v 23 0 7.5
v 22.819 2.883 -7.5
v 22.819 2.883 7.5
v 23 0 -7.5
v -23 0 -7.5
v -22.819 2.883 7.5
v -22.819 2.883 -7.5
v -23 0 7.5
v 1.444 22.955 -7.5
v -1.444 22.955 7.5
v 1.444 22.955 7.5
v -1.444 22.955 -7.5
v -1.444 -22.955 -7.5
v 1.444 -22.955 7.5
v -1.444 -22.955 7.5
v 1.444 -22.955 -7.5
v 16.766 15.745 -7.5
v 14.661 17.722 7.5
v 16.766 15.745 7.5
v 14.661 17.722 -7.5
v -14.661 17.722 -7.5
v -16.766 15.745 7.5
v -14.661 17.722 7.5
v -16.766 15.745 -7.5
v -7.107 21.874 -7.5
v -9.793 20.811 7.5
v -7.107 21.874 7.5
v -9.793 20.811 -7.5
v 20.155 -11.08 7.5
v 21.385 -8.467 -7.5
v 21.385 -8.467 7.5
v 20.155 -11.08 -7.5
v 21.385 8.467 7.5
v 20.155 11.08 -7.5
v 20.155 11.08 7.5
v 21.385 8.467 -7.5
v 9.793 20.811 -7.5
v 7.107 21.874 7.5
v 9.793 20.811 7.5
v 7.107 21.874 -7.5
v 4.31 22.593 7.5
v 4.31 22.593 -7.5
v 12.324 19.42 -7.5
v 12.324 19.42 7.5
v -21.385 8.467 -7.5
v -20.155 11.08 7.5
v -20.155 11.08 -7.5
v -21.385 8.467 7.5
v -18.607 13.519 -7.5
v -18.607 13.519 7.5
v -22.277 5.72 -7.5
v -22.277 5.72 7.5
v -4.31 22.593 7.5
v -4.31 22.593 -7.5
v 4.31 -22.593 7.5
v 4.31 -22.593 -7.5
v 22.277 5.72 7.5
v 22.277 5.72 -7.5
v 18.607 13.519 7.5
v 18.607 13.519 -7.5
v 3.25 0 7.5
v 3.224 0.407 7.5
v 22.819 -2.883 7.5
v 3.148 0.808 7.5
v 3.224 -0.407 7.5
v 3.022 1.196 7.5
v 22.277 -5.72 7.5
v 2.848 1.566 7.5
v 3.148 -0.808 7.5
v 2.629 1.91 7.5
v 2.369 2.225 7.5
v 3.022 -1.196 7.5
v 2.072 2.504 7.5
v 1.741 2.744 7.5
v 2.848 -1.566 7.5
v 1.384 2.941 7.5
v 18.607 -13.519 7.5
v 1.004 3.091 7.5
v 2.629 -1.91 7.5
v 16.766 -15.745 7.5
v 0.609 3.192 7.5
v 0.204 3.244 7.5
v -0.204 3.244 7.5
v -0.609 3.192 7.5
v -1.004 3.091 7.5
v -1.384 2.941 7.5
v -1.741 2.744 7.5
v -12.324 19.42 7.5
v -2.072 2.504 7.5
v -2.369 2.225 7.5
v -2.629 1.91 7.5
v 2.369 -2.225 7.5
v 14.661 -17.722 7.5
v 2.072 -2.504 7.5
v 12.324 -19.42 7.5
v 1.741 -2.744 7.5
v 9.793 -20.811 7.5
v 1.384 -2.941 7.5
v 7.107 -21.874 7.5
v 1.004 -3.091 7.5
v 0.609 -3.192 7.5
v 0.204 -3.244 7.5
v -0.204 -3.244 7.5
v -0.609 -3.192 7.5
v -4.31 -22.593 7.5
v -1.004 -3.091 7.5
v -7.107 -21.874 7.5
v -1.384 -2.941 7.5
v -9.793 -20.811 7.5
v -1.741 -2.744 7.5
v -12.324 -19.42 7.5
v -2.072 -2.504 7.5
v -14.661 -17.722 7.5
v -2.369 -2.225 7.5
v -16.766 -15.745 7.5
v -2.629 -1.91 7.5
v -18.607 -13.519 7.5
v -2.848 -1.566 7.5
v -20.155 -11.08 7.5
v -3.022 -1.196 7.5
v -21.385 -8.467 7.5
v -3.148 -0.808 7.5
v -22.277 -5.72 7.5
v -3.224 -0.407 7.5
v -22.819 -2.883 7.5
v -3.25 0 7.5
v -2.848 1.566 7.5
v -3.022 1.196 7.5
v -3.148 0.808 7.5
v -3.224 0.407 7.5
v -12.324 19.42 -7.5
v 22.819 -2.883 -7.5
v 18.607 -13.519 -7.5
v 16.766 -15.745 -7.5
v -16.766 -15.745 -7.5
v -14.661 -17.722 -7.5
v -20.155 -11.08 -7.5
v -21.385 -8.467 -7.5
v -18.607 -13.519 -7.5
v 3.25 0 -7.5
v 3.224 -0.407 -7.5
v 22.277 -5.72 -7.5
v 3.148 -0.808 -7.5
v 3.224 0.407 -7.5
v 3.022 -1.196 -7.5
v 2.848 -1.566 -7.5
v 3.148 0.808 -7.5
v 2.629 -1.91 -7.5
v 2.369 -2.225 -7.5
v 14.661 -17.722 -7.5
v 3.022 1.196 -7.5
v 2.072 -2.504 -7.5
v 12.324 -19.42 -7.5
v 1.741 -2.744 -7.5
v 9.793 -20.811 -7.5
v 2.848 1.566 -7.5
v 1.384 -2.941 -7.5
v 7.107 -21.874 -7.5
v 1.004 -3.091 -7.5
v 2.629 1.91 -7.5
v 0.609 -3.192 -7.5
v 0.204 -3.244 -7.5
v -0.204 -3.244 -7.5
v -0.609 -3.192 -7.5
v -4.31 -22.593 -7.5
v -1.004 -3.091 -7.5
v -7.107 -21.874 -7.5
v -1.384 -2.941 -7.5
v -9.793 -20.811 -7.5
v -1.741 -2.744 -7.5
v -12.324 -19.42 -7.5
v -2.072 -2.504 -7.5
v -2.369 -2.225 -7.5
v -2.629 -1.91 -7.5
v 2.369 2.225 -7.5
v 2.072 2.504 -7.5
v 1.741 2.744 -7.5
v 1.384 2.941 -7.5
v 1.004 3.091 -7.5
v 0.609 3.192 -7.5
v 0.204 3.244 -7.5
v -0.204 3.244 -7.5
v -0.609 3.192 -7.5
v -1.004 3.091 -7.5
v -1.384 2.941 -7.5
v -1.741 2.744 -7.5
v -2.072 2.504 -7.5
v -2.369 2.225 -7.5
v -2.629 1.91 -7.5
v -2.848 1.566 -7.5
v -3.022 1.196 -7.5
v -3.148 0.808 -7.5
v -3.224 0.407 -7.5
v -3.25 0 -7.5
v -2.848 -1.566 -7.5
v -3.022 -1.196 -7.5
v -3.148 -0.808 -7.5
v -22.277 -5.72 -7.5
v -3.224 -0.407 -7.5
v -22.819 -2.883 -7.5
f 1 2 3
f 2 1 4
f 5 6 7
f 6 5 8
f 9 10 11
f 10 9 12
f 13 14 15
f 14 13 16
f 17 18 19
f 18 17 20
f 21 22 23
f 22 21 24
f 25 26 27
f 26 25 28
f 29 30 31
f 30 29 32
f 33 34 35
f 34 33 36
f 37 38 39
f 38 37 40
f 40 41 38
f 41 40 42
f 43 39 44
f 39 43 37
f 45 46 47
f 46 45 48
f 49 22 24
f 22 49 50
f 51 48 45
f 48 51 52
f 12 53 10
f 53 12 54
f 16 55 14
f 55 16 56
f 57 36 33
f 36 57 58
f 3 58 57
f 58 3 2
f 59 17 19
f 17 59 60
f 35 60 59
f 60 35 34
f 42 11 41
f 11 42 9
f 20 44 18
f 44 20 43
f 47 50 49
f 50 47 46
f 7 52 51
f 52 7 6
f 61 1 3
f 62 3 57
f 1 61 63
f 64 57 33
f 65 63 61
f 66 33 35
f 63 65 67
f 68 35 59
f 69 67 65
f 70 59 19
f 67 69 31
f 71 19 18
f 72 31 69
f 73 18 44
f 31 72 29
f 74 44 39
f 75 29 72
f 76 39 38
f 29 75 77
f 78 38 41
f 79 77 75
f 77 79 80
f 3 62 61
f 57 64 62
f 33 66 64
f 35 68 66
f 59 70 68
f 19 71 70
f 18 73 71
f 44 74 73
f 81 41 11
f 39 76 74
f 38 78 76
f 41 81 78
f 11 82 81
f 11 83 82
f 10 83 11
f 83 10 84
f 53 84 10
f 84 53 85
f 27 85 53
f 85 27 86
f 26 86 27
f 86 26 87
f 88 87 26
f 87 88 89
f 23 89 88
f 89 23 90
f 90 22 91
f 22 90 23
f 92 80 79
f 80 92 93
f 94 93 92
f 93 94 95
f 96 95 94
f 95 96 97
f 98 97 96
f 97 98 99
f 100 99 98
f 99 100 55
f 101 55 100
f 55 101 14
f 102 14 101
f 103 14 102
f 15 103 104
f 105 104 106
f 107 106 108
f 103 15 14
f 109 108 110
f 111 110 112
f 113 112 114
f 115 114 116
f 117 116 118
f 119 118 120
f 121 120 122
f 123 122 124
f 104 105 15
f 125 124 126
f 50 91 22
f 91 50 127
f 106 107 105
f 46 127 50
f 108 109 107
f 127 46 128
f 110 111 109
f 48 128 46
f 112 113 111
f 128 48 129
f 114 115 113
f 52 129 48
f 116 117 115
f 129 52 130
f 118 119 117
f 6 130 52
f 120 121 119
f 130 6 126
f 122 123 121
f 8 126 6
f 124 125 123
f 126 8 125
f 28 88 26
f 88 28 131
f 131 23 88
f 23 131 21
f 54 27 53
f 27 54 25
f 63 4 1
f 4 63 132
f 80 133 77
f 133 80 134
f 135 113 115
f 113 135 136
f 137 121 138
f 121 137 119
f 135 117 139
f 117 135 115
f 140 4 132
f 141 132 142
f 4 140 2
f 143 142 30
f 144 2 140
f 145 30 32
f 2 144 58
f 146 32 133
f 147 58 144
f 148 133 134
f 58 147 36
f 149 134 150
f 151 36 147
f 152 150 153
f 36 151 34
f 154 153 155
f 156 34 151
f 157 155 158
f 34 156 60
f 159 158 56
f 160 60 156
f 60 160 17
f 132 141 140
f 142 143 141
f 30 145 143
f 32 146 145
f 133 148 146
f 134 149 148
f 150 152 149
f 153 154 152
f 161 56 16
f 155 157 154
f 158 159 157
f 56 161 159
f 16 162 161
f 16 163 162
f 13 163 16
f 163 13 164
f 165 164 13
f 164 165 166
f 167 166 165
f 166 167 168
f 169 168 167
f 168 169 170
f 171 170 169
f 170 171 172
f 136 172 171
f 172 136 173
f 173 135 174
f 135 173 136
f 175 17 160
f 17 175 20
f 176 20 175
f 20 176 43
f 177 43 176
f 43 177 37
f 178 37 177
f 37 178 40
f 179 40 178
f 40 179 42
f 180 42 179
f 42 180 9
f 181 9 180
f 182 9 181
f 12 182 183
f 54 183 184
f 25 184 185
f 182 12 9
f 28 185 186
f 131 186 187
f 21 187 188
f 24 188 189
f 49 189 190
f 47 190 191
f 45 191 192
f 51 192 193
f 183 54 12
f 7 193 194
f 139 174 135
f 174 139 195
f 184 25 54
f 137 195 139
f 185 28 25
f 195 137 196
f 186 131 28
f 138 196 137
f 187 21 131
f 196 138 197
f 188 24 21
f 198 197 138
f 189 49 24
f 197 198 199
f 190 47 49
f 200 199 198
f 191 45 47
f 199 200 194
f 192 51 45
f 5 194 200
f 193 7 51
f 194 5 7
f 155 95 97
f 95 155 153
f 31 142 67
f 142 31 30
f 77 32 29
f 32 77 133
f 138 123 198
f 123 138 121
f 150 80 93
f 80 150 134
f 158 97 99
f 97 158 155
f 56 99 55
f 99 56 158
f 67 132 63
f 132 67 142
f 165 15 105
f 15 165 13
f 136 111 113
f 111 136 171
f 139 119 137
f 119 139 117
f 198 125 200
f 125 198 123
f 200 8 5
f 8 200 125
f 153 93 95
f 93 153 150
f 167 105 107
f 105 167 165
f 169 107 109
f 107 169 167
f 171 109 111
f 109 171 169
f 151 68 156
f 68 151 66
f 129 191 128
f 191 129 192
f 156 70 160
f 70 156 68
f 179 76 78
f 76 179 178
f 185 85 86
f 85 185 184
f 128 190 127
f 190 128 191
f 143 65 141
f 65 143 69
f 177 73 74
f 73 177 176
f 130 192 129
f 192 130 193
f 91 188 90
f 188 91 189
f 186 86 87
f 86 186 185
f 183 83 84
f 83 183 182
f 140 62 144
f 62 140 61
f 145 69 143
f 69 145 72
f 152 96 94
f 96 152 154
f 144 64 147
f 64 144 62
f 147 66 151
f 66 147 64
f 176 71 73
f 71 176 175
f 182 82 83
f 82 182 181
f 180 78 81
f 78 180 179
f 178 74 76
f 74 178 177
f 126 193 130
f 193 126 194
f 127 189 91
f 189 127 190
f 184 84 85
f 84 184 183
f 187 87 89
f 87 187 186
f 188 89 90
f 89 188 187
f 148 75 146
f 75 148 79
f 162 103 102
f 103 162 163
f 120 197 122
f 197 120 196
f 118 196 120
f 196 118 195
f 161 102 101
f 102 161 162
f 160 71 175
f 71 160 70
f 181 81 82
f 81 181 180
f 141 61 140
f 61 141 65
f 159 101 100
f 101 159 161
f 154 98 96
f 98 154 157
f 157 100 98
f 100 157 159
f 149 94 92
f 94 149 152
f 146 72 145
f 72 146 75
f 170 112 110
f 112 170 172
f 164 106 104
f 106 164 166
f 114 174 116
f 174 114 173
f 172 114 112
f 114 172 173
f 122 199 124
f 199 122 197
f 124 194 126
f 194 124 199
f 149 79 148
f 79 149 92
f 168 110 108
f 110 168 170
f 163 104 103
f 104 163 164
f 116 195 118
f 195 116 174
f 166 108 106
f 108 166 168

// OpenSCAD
$fn = 50;


difference() {
	union() {
		translate(v = [0, 0, -7.5000000000]) {
			cylinder(h = 15, r = 23.0000000000);
		}
	}
	union() {
		translate(v = [0, 0, -100.0000000000]) {
			cylinder(h = 200, r = 3.2500000000);
		}
	}
}
